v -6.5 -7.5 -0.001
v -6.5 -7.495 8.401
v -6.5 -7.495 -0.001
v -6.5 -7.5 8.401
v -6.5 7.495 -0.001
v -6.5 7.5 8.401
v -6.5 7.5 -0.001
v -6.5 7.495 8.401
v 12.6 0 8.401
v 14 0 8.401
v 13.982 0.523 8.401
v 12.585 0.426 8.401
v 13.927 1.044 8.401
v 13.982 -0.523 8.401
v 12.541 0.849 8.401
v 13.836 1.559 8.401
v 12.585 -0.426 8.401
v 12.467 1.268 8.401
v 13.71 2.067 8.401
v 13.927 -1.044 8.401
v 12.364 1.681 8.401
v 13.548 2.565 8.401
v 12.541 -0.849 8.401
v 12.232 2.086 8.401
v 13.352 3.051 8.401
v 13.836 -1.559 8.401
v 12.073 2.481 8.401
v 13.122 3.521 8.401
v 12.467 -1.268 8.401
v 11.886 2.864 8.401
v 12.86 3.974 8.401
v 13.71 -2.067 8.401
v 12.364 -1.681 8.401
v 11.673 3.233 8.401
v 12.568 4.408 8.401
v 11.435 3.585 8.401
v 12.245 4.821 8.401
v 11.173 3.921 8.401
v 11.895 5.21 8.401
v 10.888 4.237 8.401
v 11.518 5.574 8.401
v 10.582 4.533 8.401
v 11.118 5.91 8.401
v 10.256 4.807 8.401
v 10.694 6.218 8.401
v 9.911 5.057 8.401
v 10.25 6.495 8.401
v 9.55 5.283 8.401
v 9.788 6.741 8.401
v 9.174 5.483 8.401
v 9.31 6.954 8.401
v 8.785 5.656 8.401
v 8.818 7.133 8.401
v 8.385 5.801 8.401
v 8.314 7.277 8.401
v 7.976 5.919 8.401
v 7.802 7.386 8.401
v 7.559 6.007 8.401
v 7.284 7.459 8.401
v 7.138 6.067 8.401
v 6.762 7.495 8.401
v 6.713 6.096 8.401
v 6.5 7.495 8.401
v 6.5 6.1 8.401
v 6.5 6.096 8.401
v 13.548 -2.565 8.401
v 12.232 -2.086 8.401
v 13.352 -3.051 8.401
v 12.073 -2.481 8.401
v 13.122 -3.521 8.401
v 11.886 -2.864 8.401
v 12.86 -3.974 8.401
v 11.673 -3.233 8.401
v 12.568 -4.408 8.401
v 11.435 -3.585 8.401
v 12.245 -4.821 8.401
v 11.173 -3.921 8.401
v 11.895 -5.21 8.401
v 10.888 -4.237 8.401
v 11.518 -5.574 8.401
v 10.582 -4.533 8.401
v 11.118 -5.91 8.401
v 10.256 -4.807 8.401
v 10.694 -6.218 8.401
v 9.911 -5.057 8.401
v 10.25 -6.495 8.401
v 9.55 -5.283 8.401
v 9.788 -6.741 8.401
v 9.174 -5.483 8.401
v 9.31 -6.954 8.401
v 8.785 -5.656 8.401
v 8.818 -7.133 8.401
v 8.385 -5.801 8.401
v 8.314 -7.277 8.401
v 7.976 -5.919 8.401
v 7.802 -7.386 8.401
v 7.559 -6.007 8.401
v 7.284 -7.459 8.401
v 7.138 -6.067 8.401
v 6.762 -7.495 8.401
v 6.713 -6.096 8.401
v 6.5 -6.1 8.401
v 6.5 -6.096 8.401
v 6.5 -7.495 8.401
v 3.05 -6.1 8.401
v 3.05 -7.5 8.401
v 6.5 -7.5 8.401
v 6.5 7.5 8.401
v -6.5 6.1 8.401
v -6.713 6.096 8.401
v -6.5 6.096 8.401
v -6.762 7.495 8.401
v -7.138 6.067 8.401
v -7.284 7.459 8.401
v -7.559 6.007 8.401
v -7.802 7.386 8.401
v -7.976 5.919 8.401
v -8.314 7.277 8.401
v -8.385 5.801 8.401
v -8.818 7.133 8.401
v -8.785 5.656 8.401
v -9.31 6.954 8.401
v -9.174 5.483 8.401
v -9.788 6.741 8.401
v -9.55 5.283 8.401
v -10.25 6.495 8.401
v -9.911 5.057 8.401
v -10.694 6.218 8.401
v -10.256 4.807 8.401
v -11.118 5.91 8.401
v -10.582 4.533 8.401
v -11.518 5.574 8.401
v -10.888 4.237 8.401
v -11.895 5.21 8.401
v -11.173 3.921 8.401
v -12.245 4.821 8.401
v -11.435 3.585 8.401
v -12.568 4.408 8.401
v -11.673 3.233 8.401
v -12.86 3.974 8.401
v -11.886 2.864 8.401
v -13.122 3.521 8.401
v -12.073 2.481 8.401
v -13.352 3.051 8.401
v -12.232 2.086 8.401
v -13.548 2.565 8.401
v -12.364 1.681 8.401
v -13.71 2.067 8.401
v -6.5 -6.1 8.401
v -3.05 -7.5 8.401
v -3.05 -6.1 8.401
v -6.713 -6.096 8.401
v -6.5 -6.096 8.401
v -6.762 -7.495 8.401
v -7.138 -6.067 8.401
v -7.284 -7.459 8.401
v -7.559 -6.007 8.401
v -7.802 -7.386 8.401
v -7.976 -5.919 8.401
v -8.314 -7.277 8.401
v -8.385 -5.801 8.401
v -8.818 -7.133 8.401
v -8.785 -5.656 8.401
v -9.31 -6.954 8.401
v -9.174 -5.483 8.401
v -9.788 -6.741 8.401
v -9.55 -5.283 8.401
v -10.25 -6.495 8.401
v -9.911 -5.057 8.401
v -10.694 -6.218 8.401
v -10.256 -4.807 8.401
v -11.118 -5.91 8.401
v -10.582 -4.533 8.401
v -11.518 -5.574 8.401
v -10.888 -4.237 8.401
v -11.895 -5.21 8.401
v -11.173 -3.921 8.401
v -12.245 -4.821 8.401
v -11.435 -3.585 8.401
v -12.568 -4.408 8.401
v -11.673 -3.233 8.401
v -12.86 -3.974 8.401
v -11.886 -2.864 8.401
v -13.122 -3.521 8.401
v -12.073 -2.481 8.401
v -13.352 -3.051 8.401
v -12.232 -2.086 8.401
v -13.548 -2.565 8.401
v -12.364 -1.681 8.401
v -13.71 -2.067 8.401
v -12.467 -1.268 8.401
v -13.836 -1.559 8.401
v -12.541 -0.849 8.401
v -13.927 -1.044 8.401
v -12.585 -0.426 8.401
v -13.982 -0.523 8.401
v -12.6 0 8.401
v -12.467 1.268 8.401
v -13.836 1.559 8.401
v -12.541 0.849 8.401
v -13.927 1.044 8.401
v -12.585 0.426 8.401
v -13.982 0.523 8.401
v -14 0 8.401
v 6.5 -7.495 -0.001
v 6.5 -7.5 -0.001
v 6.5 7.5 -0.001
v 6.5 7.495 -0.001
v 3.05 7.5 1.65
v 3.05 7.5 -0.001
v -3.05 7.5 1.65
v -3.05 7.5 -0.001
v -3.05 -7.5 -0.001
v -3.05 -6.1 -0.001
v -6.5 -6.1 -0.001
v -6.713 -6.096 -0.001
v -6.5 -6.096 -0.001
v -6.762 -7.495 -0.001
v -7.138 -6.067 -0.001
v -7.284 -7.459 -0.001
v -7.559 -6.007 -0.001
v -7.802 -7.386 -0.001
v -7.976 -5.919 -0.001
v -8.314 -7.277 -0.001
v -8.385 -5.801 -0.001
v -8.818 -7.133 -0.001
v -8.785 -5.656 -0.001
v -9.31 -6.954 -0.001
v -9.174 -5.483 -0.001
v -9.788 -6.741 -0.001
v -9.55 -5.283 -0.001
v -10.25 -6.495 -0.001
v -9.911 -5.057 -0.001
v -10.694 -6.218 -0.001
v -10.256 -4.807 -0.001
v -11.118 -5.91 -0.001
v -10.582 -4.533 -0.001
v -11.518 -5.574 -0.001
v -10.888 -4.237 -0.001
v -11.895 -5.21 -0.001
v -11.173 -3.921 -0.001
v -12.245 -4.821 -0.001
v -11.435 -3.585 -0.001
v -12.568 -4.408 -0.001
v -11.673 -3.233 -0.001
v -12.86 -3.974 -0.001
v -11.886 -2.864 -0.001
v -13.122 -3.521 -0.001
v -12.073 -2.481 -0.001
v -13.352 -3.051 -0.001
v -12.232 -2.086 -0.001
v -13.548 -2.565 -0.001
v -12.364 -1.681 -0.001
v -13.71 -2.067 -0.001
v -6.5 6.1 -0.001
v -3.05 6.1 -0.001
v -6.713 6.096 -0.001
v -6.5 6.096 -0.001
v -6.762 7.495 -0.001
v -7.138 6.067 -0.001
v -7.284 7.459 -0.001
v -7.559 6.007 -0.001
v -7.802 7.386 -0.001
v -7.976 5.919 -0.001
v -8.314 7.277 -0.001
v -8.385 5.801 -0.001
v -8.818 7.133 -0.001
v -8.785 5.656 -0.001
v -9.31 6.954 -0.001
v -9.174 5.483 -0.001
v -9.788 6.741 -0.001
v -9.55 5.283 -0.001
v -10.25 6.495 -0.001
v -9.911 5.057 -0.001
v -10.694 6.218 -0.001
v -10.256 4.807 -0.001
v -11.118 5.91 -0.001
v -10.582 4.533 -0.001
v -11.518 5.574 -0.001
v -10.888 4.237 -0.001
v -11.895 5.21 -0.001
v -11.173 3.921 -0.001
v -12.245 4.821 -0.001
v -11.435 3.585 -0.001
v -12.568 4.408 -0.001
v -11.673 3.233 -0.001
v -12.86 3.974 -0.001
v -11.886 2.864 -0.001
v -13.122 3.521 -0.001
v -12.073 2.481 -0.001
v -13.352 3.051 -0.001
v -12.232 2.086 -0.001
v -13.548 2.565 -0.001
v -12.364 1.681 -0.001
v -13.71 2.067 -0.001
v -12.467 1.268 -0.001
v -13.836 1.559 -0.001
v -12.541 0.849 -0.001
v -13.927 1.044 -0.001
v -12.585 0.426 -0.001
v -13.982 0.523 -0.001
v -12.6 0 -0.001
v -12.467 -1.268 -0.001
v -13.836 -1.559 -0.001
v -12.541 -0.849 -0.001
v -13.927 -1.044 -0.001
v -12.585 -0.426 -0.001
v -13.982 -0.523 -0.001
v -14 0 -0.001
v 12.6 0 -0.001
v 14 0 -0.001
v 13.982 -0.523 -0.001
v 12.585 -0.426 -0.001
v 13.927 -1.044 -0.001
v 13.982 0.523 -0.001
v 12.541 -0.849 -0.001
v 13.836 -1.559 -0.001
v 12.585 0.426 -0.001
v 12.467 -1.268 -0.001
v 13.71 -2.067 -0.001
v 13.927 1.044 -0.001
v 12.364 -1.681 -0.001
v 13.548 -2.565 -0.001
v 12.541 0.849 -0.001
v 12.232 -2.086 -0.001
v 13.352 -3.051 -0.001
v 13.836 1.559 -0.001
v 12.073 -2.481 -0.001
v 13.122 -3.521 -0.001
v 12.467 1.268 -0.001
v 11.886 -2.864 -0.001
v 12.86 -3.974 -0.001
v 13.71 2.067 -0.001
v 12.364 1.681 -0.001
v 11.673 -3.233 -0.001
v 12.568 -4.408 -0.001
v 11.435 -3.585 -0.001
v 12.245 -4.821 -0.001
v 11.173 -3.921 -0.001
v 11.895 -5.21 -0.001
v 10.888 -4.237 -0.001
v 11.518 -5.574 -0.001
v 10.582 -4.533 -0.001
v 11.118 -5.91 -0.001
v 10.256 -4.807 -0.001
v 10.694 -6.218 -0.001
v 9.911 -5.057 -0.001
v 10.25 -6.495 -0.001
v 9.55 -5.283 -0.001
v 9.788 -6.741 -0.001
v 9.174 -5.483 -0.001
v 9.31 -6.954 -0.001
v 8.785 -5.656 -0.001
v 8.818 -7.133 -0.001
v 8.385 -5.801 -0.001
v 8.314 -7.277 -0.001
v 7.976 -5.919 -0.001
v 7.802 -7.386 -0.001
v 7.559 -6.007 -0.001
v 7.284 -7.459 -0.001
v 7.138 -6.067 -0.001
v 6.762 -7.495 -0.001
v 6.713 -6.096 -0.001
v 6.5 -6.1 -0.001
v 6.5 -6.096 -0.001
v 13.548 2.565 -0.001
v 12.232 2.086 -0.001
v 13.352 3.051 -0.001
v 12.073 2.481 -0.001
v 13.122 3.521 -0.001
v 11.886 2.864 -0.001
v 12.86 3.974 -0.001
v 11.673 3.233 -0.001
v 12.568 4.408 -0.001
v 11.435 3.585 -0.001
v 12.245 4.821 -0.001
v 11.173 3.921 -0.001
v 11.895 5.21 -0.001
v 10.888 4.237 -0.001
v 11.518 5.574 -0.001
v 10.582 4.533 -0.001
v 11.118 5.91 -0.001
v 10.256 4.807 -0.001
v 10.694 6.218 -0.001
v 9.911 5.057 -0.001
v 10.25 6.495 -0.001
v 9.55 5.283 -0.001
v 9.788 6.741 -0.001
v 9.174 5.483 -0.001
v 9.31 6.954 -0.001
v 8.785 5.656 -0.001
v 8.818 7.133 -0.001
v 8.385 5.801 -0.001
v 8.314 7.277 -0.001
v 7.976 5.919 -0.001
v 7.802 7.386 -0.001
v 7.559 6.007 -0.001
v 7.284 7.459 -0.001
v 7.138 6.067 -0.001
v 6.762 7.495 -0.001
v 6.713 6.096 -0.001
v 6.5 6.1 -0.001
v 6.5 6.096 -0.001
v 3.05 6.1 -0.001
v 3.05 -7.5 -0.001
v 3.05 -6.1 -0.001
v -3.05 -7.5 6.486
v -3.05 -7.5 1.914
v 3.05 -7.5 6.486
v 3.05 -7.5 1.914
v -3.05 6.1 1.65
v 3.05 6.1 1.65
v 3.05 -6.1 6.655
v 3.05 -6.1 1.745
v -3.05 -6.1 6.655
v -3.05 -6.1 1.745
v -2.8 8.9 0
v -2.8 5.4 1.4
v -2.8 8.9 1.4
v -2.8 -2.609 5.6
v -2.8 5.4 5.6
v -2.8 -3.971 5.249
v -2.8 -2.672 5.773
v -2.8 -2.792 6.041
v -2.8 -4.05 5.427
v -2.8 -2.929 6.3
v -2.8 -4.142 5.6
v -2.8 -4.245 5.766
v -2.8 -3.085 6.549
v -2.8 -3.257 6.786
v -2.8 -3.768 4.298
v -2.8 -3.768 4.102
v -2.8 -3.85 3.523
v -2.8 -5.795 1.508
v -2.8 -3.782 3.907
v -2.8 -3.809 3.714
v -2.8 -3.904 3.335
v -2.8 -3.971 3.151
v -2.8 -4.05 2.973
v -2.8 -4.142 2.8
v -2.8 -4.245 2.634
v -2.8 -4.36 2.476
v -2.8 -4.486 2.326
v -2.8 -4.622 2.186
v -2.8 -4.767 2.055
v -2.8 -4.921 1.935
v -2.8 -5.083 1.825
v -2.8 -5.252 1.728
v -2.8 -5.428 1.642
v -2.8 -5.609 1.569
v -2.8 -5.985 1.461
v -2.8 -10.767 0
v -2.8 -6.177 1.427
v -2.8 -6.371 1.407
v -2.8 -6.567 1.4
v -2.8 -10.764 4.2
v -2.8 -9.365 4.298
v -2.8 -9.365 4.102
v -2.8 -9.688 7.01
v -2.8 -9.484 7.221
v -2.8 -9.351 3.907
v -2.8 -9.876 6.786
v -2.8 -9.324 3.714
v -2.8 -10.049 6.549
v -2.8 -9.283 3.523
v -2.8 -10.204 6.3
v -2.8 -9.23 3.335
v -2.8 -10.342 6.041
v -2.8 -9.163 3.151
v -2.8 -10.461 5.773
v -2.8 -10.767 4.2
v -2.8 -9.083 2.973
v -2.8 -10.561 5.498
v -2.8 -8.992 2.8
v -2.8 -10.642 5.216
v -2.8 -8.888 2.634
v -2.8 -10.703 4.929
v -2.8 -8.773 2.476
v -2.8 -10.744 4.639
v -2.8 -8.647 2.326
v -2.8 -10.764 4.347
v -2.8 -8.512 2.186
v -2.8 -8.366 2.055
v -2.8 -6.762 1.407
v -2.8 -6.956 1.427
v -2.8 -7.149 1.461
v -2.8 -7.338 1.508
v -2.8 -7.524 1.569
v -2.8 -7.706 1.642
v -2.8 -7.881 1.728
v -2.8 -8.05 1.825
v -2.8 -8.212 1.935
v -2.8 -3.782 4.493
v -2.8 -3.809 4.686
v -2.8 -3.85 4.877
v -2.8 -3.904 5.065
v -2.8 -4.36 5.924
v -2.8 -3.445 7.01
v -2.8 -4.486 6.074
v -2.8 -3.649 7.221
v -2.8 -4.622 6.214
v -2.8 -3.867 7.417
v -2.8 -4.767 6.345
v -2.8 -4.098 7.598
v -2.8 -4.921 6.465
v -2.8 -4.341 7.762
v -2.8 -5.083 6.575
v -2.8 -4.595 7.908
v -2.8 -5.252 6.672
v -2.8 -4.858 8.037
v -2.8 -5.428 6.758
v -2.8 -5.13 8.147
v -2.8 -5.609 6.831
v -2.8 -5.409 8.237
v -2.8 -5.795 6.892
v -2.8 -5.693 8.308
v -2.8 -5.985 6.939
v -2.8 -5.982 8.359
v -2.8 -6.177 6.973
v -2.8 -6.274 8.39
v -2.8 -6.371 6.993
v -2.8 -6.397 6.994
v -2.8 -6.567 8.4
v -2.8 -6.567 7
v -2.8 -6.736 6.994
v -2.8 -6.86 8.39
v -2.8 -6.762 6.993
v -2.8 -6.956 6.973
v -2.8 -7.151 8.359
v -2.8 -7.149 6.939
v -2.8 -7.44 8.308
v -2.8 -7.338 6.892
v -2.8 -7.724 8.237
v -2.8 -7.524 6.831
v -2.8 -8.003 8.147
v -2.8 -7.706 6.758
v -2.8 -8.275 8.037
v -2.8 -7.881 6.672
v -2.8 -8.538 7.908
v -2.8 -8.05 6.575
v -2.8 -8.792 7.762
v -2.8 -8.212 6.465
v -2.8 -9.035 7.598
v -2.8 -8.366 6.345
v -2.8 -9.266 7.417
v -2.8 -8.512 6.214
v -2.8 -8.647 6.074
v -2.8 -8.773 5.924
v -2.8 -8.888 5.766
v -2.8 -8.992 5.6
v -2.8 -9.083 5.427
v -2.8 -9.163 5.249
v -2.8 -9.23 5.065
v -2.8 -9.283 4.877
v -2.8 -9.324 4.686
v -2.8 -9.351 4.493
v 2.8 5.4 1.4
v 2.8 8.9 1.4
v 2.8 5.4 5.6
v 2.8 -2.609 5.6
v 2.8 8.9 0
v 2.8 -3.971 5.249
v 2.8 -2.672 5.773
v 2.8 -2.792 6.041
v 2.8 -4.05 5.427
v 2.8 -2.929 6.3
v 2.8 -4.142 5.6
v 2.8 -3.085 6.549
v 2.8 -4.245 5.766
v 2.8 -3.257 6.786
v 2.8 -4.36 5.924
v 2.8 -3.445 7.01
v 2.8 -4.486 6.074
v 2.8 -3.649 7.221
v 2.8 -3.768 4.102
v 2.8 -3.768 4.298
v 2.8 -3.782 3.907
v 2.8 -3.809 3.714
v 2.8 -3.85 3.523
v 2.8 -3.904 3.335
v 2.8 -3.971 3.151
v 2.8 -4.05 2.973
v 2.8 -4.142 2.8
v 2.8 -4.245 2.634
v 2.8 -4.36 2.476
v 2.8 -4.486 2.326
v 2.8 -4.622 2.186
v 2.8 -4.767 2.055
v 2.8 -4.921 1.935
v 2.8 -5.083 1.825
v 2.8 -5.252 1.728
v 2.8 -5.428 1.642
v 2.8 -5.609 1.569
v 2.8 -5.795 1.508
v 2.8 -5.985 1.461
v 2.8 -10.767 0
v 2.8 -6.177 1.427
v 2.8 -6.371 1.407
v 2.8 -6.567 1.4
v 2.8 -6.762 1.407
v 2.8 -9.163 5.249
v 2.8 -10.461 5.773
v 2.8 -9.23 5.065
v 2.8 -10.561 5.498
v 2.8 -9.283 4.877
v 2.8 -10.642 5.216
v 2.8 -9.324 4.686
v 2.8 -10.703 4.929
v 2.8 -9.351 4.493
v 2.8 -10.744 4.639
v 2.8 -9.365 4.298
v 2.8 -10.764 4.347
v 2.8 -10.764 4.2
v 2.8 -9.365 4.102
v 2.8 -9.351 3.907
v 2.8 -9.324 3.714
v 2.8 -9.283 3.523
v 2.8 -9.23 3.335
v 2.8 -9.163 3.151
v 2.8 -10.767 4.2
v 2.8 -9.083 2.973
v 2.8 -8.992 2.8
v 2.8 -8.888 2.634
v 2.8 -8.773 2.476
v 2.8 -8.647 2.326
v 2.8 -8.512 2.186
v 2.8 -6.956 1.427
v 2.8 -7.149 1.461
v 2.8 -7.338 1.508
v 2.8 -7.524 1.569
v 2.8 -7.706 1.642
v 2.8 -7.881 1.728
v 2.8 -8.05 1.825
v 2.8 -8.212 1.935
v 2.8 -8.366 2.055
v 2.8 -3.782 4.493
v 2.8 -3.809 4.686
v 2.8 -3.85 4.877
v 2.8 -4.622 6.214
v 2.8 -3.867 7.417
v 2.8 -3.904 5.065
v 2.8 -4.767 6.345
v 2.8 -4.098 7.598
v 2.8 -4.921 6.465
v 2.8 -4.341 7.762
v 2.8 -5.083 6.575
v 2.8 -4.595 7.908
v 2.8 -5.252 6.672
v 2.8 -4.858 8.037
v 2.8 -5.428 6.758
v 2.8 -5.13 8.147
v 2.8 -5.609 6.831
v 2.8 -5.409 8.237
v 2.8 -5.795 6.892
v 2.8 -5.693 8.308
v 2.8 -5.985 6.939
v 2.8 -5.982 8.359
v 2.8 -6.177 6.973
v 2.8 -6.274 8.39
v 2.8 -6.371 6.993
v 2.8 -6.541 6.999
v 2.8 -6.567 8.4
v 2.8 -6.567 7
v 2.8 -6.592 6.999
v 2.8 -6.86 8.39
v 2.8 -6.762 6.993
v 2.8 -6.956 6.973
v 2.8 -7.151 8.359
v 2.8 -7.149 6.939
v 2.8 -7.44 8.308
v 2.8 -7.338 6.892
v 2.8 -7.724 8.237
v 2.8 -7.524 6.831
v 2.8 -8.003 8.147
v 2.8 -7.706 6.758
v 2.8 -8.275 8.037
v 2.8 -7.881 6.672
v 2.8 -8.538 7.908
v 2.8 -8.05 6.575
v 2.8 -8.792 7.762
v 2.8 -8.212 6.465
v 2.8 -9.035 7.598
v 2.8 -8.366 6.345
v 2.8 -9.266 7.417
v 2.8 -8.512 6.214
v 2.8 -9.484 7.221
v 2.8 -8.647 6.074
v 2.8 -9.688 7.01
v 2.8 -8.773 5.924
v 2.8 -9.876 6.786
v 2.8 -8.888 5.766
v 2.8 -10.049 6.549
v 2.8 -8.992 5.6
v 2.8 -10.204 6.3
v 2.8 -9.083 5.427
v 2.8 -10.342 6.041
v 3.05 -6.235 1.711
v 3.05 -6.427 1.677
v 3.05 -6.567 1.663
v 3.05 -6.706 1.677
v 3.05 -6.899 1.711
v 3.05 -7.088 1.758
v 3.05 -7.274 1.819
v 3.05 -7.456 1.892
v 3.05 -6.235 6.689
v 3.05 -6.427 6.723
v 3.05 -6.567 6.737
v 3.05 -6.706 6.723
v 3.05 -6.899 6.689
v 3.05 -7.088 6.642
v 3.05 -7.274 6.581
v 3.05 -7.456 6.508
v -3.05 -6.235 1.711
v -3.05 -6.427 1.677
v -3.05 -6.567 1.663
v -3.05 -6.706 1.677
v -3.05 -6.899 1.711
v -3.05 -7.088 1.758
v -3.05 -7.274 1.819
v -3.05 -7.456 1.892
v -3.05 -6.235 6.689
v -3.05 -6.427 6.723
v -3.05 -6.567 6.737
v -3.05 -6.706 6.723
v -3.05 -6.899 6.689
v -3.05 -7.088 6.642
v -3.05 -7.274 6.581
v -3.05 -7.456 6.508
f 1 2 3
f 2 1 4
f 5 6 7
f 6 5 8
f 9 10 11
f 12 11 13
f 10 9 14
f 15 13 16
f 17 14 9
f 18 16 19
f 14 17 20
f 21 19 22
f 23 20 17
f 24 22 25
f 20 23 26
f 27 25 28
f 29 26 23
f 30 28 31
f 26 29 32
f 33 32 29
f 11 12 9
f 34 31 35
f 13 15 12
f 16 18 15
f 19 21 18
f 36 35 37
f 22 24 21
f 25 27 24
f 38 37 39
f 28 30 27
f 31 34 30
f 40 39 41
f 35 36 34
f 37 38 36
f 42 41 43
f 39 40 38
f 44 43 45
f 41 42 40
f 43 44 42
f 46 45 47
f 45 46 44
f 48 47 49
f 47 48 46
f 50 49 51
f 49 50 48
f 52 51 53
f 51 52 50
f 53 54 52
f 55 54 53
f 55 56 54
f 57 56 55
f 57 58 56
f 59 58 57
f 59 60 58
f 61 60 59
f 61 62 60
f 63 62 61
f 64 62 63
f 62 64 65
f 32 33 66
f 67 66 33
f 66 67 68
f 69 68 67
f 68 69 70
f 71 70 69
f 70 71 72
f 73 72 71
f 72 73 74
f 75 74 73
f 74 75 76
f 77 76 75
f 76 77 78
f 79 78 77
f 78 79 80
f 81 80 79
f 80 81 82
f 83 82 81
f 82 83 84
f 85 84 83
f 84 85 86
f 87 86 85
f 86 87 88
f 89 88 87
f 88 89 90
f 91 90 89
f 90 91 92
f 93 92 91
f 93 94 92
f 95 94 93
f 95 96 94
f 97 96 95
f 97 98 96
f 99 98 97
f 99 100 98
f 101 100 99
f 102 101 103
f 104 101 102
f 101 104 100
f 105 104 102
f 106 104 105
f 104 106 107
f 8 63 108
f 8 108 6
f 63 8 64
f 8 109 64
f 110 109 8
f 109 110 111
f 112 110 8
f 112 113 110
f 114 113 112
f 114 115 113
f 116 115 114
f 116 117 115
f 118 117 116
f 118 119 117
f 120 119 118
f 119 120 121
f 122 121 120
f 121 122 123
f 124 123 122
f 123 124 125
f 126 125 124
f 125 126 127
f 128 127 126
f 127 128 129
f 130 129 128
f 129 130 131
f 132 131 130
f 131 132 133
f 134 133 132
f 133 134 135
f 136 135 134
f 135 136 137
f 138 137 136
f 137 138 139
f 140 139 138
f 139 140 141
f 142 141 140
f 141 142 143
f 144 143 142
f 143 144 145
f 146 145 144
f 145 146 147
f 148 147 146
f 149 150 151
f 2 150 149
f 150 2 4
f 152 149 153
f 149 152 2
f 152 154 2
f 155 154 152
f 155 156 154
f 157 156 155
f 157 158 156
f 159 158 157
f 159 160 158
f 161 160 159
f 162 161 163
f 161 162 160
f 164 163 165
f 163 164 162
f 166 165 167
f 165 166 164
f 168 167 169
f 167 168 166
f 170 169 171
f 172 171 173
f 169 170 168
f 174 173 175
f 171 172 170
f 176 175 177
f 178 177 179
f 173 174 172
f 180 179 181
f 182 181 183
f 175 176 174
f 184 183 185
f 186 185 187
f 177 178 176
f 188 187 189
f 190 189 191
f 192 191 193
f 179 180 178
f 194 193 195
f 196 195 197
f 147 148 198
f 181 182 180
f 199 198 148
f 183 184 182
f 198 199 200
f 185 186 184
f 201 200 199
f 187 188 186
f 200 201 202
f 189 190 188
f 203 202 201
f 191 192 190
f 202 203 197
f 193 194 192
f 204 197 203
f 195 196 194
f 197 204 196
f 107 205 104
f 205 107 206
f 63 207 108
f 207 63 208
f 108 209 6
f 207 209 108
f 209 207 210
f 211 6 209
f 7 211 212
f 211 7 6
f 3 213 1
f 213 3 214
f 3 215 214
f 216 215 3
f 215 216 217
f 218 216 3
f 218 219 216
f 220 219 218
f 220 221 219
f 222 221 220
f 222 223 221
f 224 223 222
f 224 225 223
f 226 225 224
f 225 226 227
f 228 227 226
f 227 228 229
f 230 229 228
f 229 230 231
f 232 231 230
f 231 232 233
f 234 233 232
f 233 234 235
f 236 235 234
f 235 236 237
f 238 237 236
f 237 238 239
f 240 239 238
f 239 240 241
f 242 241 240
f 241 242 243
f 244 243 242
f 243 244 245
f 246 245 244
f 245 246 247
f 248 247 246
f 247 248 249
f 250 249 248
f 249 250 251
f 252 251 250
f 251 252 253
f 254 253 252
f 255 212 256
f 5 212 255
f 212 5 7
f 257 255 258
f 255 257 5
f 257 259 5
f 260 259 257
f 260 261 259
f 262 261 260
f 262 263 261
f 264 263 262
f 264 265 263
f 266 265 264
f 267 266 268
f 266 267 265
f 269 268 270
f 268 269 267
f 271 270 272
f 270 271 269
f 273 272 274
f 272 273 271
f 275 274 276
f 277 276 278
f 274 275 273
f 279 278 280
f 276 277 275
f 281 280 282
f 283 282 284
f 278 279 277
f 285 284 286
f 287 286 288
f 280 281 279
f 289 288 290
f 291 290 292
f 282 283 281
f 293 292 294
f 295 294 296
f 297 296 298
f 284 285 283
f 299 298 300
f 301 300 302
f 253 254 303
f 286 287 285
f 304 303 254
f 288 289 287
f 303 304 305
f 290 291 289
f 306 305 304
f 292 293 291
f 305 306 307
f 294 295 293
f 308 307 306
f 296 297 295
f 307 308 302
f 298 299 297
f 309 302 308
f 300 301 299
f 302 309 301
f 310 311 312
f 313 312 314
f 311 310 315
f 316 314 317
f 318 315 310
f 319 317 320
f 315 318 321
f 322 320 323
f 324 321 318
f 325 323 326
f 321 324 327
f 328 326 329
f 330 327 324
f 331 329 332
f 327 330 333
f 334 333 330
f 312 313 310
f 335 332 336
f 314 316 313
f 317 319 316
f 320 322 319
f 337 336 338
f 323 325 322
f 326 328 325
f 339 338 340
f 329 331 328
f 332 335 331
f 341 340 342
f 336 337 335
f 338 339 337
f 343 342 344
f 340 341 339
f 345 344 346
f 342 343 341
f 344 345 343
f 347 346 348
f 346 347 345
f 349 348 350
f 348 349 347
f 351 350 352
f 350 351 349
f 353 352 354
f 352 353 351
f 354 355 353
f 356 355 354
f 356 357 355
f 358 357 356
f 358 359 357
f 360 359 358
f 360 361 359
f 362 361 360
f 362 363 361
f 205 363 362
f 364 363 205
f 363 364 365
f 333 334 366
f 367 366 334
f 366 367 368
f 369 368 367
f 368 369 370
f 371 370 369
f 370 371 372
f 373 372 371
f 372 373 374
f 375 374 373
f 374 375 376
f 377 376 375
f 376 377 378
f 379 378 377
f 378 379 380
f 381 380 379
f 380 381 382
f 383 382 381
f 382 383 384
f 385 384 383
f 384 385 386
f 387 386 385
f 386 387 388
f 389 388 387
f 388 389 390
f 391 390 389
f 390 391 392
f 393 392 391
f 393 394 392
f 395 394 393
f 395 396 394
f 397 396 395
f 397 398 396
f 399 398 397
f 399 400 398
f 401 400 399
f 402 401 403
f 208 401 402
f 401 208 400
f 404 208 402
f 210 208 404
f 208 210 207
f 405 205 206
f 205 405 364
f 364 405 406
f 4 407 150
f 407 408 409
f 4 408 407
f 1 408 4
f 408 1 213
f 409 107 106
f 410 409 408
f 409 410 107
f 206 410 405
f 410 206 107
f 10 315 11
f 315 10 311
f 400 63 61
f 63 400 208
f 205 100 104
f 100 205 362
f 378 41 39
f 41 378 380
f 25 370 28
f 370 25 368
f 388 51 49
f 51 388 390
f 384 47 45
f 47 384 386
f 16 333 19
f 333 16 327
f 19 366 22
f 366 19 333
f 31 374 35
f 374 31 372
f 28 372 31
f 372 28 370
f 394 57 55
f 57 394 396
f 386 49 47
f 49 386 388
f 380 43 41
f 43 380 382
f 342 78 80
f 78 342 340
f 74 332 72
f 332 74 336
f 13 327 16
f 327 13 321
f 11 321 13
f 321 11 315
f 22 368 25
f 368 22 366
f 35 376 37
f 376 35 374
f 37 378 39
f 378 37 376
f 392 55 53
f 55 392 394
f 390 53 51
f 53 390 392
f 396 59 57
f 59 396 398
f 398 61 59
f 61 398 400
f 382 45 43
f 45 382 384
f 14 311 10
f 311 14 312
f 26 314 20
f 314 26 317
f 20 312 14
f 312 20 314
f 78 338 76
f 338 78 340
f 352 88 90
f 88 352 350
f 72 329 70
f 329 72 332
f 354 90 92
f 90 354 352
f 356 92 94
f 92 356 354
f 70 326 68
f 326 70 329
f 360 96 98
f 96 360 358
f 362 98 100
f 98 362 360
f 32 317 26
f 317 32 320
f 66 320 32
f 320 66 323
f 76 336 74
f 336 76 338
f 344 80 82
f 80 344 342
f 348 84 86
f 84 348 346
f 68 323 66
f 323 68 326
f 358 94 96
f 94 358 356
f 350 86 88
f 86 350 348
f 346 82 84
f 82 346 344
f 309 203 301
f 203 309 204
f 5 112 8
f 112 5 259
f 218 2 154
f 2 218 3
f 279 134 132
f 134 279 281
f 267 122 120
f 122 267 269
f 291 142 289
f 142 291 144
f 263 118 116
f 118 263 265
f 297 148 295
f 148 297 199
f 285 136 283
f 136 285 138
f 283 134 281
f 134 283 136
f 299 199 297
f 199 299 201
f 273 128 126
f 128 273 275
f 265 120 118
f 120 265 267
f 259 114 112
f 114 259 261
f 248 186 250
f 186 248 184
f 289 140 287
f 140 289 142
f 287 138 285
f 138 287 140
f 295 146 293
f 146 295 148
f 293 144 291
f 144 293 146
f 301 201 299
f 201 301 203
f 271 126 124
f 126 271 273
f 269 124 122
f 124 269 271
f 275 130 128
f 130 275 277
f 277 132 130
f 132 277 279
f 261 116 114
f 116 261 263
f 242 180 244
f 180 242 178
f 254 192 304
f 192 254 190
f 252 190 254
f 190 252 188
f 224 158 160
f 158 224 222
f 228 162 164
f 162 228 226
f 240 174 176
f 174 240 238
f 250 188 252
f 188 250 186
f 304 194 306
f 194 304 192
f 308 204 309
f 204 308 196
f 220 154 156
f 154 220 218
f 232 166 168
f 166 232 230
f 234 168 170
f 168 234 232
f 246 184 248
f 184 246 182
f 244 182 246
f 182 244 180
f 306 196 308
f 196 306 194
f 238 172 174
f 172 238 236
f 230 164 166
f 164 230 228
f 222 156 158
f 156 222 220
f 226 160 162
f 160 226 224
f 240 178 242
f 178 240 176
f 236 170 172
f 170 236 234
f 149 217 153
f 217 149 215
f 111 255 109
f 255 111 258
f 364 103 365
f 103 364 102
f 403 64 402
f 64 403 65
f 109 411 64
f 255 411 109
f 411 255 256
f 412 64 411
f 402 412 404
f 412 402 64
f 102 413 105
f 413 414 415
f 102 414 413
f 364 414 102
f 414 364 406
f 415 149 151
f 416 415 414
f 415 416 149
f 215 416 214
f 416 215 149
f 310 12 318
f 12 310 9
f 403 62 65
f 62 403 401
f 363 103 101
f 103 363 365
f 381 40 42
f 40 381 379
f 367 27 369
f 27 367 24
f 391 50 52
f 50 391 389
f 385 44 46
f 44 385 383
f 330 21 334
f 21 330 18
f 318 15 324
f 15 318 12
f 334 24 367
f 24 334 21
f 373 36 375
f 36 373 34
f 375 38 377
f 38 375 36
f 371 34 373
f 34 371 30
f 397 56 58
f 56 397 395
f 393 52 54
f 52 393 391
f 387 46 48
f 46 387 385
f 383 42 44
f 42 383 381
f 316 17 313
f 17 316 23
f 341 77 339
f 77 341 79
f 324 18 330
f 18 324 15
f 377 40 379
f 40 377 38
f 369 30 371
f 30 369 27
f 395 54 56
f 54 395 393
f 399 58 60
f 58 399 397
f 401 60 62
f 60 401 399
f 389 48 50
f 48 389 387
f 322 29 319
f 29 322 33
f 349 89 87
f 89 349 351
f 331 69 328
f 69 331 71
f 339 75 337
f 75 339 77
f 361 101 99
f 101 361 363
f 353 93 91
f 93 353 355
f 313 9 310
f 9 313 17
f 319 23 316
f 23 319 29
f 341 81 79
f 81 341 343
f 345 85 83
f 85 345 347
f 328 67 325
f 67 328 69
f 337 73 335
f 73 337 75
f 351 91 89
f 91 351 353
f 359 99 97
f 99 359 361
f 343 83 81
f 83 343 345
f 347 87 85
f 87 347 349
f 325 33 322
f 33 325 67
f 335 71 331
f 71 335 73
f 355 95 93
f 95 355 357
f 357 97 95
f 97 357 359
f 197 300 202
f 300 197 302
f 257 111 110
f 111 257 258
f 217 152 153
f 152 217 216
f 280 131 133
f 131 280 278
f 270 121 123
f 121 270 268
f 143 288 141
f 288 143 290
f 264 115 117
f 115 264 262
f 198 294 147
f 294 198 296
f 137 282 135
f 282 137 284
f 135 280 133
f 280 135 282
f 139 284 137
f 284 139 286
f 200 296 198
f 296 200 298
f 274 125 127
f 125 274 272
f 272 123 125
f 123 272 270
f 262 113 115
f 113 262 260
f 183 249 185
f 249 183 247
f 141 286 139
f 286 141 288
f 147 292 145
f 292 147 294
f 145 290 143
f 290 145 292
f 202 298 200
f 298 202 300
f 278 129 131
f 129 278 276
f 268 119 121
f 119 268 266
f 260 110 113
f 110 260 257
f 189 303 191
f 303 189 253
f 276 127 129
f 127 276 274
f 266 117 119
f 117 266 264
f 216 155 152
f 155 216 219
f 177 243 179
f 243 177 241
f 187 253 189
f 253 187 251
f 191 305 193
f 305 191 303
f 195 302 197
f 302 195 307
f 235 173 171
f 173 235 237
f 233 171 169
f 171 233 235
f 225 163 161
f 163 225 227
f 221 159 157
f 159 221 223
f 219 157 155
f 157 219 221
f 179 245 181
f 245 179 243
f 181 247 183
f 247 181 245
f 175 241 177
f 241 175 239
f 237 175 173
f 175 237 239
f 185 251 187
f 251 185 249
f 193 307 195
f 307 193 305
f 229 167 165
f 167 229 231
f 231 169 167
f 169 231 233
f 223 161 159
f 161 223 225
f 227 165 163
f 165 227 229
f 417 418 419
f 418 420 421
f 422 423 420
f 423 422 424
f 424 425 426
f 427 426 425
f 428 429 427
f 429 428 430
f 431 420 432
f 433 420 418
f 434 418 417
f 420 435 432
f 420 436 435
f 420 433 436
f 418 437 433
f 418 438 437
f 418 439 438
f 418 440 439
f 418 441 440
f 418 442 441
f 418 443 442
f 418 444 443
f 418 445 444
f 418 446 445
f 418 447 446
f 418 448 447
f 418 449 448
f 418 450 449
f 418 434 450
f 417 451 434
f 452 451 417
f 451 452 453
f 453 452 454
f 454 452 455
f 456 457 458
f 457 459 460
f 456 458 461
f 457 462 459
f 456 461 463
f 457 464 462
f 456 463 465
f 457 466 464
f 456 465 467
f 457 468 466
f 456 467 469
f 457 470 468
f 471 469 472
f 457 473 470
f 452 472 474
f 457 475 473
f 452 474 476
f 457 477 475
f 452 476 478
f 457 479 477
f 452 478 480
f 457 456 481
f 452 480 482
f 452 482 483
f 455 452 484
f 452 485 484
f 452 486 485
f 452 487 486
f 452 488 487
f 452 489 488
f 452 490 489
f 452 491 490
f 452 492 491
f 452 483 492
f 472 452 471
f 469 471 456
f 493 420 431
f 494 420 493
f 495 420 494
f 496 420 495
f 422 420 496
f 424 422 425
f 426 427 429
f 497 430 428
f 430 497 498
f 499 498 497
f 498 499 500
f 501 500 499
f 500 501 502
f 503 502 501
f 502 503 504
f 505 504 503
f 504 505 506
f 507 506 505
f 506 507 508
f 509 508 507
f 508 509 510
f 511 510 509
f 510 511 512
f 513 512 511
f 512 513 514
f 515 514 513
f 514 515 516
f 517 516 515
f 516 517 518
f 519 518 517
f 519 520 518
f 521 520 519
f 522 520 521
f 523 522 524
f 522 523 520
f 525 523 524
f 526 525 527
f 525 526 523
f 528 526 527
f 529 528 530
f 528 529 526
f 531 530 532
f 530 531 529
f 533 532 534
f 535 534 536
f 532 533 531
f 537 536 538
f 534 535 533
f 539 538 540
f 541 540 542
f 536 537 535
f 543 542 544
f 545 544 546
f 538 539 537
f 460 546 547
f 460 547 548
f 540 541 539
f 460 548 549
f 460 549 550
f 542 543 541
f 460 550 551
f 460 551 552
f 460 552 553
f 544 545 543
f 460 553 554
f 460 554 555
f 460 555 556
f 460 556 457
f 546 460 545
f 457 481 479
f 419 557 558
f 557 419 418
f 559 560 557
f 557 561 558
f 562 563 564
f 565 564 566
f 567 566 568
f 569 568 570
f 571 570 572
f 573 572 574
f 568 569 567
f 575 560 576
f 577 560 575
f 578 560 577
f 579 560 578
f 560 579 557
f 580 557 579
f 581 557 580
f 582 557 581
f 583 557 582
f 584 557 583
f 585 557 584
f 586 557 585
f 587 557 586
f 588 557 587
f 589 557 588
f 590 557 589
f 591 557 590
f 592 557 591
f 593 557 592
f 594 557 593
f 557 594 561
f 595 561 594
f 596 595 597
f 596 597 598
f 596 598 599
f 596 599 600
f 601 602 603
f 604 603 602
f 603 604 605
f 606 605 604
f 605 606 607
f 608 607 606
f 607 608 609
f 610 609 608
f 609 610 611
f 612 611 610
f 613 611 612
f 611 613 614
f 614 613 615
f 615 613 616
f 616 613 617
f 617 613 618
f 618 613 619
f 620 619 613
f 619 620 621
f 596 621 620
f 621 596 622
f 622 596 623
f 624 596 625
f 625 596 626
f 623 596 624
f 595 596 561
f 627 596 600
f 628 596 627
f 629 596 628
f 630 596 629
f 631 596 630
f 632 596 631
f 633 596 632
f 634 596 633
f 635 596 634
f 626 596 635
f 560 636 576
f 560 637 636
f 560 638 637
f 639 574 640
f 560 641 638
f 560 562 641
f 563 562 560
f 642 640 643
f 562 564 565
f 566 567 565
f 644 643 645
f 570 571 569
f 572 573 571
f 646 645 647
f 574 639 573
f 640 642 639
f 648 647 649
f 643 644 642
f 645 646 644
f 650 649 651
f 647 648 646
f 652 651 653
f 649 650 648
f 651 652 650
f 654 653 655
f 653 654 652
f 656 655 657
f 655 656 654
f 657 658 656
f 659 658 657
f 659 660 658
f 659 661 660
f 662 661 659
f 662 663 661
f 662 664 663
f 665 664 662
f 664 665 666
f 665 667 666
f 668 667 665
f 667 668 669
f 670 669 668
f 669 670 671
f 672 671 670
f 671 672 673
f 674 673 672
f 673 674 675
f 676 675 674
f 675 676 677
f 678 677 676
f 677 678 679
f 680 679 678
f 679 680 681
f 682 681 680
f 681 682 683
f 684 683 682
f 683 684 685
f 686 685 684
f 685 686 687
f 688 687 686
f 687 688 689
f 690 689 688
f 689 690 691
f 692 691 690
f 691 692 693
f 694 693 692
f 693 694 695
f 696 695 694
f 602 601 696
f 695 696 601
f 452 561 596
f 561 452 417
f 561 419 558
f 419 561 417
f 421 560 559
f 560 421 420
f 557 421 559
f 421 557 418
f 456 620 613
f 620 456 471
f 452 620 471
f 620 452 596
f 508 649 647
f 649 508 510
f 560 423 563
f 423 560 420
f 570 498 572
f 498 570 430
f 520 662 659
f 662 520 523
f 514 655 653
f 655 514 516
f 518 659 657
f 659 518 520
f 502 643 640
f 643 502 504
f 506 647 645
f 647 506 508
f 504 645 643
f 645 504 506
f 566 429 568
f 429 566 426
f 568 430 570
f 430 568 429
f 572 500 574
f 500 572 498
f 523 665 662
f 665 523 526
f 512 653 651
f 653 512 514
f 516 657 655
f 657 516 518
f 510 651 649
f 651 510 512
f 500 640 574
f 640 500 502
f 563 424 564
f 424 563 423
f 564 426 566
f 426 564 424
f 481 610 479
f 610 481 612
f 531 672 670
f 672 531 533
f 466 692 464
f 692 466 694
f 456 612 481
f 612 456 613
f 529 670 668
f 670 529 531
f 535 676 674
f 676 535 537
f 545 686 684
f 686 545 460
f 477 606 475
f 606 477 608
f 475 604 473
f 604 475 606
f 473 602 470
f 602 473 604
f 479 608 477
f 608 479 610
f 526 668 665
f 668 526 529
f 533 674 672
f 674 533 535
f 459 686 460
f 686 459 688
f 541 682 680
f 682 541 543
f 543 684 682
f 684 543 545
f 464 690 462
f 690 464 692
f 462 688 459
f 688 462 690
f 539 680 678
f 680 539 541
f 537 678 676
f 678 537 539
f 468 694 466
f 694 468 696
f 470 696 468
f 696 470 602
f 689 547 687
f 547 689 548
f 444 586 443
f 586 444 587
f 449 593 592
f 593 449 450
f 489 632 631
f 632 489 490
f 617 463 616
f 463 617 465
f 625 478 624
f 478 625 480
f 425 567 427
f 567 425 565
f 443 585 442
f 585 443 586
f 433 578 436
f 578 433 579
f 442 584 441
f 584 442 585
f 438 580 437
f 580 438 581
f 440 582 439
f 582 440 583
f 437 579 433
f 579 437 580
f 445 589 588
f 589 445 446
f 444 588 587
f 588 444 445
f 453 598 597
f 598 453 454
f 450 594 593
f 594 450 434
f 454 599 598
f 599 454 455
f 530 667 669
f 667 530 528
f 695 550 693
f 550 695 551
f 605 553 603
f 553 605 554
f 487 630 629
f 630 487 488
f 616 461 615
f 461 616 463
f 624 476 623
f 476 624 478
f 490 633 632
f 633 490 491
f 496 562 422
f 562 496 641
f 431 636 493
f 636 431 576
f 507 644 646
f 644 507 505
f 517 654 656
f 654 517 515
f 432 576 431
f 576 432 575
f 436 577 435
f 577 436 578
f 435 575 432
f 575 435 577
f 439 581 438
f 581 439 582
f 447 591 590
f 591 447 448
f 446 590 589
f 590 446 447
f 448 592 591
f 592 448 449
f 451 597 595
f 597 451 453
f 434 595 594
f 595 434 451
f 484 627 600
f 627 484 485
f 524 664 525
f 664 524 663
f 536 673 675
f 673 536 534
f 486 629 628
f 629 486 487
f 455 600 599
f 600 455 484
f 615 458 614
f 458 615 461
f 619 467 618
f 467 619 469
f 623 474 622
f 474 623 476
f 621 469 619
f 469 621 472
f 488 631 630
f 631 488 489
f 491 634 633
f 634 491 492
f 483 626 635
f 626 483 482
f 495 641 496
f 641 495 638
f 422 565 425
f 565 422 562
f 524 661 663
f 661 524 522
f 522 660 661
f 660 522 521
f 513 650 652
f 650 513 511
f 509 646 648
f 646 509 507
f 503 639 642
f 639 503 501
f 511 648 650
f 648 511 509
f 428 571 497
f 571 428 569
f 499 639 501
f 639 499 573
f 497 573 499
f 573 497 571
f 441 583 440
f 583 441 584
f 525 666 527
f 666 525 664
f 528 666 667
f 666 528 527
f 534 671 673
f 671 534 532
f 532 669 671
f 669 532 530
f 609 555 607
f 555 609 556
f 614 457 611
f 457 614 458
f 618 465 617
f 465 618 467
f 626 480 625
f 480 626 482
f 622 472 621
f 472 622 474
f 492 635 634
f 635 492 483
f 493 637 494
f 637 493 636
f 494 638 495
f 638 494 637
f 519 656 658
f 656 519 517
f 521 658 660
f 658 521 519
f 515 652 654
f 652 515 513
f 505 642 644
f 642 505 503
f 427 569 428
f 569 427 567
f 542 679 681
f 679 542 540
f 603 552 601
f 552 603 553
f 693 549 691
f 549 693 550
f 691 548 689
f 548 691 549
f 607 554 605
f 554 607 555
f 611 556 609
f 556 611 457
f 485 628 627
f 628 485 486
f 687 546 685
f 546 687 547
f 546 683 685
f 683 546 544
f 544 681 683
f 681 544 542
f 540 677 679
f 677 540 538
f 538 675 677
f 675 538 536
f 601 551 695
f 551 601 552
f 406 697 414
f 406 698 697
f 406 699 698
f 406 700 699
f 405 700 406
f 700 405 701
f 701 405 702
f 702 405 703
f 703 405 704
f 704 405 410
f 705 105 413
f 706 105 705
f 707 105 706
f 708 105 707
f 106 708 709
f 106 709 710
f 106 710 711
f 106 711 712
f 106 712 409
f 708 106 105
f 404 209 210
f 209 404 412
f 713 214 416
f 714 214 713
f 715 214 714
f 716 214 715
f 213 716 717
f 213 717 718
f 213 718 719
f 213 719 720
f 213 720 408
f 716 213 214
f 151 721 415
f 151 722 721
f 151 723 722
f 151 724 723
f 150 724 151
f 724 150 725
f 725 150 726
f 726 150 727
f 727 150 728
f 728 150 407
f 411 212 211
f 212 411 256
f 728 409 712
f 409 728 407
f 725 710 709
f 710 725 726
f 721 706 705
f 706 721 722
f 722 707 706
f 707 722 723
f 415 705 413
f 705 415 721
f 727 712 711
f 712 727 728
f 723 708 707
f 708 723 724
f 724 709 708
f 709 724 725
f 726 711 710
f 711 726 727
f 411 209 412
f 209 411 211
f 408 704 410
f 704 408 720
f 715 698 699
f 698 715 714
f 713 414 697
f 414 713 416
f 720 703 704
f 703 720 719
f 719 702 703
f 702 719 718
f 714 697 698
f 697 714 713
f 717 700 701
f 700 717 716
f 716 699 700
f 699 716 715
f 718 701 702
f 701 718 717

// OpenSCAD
$fn = 90;
WALL_THICKNESS = 1.4;
HEIGHT = WALL_THICKNESS*6;
DEPTH = 15;
ATOM = 0.001;
WIDTH = 28;
SPACING = 5;
PLAY = 0.5;

module rounded(offset, h) {
    cube([WIDTH-DEPTH-offset*0, DEPTH-offset*2, h+ATOM*2], true);

    translate([WIDTH/2-DEPTH/2, 0, 0])
    cylinder(d=DEPTH-offset*2, h=h+ATOM*2, center=true);

    translate([-WIDTH/2+DEPTH/2, 0, 0])
    cylinder(d=DEPTH-offset*2, h=h+ATOM*2, center=true);
}

module box(h) {
    translate([0, 0, HEIGHT/2])
    difference() {
        rounded(0, h);
        rounded(WALL_THICKNESS, h+ATOM*2);
    }
}

module flap() {
     width = WIDTH/5;
	difference() {
		union() {
			translate([-width/2, -DEPTH/2 +WALL_THICKNESS, 0])
			cube([width, DEPTH, WALL_THICKNESS]);

			translate([-width/2, -DEPTH/2 -WALL_THICKNESS*1.5, 0])
			cube([width, DEPTH, WALL_THICKNESS*4]);

			translate([-width/2, -DEPTH/2 +WALL_THICKNESS/1.5-WALL_THICKNESS*3, 0])
			cube([width, WALL_THICKNESS*6, WALL_THICKNESS*3]);

			translate([-width/2, -DEPTH/2 +WALL_THICKNESS/1.5, WALL_THICKNESS*3])
			rotate([0, 90, 0])
			cylinder(r=WALL_THICKNESS*3, h=width);
		}

		translate([-width/2-1, -DEPTH/2 +WALL_THICKNESS/1.5, WALL_THICKNESS*3])
		rotate([0, 90, 0])
		cylinder(r=WALL_THICKNESS*2, h=width+2);

	}
}

module unit() {
	difference() {
		box(HEIGHT);
		minkowski() {
			flap();
			cube([PLAY, PLAY, PLAY], true);
		}
	}
	flap();
}

//for (i=[0:2])
//    for (j=[0:2])
//        translate([i*(WIDTH+SPACING), j*(DEPTH+SPACING), 0])
      unit();
//flap();
